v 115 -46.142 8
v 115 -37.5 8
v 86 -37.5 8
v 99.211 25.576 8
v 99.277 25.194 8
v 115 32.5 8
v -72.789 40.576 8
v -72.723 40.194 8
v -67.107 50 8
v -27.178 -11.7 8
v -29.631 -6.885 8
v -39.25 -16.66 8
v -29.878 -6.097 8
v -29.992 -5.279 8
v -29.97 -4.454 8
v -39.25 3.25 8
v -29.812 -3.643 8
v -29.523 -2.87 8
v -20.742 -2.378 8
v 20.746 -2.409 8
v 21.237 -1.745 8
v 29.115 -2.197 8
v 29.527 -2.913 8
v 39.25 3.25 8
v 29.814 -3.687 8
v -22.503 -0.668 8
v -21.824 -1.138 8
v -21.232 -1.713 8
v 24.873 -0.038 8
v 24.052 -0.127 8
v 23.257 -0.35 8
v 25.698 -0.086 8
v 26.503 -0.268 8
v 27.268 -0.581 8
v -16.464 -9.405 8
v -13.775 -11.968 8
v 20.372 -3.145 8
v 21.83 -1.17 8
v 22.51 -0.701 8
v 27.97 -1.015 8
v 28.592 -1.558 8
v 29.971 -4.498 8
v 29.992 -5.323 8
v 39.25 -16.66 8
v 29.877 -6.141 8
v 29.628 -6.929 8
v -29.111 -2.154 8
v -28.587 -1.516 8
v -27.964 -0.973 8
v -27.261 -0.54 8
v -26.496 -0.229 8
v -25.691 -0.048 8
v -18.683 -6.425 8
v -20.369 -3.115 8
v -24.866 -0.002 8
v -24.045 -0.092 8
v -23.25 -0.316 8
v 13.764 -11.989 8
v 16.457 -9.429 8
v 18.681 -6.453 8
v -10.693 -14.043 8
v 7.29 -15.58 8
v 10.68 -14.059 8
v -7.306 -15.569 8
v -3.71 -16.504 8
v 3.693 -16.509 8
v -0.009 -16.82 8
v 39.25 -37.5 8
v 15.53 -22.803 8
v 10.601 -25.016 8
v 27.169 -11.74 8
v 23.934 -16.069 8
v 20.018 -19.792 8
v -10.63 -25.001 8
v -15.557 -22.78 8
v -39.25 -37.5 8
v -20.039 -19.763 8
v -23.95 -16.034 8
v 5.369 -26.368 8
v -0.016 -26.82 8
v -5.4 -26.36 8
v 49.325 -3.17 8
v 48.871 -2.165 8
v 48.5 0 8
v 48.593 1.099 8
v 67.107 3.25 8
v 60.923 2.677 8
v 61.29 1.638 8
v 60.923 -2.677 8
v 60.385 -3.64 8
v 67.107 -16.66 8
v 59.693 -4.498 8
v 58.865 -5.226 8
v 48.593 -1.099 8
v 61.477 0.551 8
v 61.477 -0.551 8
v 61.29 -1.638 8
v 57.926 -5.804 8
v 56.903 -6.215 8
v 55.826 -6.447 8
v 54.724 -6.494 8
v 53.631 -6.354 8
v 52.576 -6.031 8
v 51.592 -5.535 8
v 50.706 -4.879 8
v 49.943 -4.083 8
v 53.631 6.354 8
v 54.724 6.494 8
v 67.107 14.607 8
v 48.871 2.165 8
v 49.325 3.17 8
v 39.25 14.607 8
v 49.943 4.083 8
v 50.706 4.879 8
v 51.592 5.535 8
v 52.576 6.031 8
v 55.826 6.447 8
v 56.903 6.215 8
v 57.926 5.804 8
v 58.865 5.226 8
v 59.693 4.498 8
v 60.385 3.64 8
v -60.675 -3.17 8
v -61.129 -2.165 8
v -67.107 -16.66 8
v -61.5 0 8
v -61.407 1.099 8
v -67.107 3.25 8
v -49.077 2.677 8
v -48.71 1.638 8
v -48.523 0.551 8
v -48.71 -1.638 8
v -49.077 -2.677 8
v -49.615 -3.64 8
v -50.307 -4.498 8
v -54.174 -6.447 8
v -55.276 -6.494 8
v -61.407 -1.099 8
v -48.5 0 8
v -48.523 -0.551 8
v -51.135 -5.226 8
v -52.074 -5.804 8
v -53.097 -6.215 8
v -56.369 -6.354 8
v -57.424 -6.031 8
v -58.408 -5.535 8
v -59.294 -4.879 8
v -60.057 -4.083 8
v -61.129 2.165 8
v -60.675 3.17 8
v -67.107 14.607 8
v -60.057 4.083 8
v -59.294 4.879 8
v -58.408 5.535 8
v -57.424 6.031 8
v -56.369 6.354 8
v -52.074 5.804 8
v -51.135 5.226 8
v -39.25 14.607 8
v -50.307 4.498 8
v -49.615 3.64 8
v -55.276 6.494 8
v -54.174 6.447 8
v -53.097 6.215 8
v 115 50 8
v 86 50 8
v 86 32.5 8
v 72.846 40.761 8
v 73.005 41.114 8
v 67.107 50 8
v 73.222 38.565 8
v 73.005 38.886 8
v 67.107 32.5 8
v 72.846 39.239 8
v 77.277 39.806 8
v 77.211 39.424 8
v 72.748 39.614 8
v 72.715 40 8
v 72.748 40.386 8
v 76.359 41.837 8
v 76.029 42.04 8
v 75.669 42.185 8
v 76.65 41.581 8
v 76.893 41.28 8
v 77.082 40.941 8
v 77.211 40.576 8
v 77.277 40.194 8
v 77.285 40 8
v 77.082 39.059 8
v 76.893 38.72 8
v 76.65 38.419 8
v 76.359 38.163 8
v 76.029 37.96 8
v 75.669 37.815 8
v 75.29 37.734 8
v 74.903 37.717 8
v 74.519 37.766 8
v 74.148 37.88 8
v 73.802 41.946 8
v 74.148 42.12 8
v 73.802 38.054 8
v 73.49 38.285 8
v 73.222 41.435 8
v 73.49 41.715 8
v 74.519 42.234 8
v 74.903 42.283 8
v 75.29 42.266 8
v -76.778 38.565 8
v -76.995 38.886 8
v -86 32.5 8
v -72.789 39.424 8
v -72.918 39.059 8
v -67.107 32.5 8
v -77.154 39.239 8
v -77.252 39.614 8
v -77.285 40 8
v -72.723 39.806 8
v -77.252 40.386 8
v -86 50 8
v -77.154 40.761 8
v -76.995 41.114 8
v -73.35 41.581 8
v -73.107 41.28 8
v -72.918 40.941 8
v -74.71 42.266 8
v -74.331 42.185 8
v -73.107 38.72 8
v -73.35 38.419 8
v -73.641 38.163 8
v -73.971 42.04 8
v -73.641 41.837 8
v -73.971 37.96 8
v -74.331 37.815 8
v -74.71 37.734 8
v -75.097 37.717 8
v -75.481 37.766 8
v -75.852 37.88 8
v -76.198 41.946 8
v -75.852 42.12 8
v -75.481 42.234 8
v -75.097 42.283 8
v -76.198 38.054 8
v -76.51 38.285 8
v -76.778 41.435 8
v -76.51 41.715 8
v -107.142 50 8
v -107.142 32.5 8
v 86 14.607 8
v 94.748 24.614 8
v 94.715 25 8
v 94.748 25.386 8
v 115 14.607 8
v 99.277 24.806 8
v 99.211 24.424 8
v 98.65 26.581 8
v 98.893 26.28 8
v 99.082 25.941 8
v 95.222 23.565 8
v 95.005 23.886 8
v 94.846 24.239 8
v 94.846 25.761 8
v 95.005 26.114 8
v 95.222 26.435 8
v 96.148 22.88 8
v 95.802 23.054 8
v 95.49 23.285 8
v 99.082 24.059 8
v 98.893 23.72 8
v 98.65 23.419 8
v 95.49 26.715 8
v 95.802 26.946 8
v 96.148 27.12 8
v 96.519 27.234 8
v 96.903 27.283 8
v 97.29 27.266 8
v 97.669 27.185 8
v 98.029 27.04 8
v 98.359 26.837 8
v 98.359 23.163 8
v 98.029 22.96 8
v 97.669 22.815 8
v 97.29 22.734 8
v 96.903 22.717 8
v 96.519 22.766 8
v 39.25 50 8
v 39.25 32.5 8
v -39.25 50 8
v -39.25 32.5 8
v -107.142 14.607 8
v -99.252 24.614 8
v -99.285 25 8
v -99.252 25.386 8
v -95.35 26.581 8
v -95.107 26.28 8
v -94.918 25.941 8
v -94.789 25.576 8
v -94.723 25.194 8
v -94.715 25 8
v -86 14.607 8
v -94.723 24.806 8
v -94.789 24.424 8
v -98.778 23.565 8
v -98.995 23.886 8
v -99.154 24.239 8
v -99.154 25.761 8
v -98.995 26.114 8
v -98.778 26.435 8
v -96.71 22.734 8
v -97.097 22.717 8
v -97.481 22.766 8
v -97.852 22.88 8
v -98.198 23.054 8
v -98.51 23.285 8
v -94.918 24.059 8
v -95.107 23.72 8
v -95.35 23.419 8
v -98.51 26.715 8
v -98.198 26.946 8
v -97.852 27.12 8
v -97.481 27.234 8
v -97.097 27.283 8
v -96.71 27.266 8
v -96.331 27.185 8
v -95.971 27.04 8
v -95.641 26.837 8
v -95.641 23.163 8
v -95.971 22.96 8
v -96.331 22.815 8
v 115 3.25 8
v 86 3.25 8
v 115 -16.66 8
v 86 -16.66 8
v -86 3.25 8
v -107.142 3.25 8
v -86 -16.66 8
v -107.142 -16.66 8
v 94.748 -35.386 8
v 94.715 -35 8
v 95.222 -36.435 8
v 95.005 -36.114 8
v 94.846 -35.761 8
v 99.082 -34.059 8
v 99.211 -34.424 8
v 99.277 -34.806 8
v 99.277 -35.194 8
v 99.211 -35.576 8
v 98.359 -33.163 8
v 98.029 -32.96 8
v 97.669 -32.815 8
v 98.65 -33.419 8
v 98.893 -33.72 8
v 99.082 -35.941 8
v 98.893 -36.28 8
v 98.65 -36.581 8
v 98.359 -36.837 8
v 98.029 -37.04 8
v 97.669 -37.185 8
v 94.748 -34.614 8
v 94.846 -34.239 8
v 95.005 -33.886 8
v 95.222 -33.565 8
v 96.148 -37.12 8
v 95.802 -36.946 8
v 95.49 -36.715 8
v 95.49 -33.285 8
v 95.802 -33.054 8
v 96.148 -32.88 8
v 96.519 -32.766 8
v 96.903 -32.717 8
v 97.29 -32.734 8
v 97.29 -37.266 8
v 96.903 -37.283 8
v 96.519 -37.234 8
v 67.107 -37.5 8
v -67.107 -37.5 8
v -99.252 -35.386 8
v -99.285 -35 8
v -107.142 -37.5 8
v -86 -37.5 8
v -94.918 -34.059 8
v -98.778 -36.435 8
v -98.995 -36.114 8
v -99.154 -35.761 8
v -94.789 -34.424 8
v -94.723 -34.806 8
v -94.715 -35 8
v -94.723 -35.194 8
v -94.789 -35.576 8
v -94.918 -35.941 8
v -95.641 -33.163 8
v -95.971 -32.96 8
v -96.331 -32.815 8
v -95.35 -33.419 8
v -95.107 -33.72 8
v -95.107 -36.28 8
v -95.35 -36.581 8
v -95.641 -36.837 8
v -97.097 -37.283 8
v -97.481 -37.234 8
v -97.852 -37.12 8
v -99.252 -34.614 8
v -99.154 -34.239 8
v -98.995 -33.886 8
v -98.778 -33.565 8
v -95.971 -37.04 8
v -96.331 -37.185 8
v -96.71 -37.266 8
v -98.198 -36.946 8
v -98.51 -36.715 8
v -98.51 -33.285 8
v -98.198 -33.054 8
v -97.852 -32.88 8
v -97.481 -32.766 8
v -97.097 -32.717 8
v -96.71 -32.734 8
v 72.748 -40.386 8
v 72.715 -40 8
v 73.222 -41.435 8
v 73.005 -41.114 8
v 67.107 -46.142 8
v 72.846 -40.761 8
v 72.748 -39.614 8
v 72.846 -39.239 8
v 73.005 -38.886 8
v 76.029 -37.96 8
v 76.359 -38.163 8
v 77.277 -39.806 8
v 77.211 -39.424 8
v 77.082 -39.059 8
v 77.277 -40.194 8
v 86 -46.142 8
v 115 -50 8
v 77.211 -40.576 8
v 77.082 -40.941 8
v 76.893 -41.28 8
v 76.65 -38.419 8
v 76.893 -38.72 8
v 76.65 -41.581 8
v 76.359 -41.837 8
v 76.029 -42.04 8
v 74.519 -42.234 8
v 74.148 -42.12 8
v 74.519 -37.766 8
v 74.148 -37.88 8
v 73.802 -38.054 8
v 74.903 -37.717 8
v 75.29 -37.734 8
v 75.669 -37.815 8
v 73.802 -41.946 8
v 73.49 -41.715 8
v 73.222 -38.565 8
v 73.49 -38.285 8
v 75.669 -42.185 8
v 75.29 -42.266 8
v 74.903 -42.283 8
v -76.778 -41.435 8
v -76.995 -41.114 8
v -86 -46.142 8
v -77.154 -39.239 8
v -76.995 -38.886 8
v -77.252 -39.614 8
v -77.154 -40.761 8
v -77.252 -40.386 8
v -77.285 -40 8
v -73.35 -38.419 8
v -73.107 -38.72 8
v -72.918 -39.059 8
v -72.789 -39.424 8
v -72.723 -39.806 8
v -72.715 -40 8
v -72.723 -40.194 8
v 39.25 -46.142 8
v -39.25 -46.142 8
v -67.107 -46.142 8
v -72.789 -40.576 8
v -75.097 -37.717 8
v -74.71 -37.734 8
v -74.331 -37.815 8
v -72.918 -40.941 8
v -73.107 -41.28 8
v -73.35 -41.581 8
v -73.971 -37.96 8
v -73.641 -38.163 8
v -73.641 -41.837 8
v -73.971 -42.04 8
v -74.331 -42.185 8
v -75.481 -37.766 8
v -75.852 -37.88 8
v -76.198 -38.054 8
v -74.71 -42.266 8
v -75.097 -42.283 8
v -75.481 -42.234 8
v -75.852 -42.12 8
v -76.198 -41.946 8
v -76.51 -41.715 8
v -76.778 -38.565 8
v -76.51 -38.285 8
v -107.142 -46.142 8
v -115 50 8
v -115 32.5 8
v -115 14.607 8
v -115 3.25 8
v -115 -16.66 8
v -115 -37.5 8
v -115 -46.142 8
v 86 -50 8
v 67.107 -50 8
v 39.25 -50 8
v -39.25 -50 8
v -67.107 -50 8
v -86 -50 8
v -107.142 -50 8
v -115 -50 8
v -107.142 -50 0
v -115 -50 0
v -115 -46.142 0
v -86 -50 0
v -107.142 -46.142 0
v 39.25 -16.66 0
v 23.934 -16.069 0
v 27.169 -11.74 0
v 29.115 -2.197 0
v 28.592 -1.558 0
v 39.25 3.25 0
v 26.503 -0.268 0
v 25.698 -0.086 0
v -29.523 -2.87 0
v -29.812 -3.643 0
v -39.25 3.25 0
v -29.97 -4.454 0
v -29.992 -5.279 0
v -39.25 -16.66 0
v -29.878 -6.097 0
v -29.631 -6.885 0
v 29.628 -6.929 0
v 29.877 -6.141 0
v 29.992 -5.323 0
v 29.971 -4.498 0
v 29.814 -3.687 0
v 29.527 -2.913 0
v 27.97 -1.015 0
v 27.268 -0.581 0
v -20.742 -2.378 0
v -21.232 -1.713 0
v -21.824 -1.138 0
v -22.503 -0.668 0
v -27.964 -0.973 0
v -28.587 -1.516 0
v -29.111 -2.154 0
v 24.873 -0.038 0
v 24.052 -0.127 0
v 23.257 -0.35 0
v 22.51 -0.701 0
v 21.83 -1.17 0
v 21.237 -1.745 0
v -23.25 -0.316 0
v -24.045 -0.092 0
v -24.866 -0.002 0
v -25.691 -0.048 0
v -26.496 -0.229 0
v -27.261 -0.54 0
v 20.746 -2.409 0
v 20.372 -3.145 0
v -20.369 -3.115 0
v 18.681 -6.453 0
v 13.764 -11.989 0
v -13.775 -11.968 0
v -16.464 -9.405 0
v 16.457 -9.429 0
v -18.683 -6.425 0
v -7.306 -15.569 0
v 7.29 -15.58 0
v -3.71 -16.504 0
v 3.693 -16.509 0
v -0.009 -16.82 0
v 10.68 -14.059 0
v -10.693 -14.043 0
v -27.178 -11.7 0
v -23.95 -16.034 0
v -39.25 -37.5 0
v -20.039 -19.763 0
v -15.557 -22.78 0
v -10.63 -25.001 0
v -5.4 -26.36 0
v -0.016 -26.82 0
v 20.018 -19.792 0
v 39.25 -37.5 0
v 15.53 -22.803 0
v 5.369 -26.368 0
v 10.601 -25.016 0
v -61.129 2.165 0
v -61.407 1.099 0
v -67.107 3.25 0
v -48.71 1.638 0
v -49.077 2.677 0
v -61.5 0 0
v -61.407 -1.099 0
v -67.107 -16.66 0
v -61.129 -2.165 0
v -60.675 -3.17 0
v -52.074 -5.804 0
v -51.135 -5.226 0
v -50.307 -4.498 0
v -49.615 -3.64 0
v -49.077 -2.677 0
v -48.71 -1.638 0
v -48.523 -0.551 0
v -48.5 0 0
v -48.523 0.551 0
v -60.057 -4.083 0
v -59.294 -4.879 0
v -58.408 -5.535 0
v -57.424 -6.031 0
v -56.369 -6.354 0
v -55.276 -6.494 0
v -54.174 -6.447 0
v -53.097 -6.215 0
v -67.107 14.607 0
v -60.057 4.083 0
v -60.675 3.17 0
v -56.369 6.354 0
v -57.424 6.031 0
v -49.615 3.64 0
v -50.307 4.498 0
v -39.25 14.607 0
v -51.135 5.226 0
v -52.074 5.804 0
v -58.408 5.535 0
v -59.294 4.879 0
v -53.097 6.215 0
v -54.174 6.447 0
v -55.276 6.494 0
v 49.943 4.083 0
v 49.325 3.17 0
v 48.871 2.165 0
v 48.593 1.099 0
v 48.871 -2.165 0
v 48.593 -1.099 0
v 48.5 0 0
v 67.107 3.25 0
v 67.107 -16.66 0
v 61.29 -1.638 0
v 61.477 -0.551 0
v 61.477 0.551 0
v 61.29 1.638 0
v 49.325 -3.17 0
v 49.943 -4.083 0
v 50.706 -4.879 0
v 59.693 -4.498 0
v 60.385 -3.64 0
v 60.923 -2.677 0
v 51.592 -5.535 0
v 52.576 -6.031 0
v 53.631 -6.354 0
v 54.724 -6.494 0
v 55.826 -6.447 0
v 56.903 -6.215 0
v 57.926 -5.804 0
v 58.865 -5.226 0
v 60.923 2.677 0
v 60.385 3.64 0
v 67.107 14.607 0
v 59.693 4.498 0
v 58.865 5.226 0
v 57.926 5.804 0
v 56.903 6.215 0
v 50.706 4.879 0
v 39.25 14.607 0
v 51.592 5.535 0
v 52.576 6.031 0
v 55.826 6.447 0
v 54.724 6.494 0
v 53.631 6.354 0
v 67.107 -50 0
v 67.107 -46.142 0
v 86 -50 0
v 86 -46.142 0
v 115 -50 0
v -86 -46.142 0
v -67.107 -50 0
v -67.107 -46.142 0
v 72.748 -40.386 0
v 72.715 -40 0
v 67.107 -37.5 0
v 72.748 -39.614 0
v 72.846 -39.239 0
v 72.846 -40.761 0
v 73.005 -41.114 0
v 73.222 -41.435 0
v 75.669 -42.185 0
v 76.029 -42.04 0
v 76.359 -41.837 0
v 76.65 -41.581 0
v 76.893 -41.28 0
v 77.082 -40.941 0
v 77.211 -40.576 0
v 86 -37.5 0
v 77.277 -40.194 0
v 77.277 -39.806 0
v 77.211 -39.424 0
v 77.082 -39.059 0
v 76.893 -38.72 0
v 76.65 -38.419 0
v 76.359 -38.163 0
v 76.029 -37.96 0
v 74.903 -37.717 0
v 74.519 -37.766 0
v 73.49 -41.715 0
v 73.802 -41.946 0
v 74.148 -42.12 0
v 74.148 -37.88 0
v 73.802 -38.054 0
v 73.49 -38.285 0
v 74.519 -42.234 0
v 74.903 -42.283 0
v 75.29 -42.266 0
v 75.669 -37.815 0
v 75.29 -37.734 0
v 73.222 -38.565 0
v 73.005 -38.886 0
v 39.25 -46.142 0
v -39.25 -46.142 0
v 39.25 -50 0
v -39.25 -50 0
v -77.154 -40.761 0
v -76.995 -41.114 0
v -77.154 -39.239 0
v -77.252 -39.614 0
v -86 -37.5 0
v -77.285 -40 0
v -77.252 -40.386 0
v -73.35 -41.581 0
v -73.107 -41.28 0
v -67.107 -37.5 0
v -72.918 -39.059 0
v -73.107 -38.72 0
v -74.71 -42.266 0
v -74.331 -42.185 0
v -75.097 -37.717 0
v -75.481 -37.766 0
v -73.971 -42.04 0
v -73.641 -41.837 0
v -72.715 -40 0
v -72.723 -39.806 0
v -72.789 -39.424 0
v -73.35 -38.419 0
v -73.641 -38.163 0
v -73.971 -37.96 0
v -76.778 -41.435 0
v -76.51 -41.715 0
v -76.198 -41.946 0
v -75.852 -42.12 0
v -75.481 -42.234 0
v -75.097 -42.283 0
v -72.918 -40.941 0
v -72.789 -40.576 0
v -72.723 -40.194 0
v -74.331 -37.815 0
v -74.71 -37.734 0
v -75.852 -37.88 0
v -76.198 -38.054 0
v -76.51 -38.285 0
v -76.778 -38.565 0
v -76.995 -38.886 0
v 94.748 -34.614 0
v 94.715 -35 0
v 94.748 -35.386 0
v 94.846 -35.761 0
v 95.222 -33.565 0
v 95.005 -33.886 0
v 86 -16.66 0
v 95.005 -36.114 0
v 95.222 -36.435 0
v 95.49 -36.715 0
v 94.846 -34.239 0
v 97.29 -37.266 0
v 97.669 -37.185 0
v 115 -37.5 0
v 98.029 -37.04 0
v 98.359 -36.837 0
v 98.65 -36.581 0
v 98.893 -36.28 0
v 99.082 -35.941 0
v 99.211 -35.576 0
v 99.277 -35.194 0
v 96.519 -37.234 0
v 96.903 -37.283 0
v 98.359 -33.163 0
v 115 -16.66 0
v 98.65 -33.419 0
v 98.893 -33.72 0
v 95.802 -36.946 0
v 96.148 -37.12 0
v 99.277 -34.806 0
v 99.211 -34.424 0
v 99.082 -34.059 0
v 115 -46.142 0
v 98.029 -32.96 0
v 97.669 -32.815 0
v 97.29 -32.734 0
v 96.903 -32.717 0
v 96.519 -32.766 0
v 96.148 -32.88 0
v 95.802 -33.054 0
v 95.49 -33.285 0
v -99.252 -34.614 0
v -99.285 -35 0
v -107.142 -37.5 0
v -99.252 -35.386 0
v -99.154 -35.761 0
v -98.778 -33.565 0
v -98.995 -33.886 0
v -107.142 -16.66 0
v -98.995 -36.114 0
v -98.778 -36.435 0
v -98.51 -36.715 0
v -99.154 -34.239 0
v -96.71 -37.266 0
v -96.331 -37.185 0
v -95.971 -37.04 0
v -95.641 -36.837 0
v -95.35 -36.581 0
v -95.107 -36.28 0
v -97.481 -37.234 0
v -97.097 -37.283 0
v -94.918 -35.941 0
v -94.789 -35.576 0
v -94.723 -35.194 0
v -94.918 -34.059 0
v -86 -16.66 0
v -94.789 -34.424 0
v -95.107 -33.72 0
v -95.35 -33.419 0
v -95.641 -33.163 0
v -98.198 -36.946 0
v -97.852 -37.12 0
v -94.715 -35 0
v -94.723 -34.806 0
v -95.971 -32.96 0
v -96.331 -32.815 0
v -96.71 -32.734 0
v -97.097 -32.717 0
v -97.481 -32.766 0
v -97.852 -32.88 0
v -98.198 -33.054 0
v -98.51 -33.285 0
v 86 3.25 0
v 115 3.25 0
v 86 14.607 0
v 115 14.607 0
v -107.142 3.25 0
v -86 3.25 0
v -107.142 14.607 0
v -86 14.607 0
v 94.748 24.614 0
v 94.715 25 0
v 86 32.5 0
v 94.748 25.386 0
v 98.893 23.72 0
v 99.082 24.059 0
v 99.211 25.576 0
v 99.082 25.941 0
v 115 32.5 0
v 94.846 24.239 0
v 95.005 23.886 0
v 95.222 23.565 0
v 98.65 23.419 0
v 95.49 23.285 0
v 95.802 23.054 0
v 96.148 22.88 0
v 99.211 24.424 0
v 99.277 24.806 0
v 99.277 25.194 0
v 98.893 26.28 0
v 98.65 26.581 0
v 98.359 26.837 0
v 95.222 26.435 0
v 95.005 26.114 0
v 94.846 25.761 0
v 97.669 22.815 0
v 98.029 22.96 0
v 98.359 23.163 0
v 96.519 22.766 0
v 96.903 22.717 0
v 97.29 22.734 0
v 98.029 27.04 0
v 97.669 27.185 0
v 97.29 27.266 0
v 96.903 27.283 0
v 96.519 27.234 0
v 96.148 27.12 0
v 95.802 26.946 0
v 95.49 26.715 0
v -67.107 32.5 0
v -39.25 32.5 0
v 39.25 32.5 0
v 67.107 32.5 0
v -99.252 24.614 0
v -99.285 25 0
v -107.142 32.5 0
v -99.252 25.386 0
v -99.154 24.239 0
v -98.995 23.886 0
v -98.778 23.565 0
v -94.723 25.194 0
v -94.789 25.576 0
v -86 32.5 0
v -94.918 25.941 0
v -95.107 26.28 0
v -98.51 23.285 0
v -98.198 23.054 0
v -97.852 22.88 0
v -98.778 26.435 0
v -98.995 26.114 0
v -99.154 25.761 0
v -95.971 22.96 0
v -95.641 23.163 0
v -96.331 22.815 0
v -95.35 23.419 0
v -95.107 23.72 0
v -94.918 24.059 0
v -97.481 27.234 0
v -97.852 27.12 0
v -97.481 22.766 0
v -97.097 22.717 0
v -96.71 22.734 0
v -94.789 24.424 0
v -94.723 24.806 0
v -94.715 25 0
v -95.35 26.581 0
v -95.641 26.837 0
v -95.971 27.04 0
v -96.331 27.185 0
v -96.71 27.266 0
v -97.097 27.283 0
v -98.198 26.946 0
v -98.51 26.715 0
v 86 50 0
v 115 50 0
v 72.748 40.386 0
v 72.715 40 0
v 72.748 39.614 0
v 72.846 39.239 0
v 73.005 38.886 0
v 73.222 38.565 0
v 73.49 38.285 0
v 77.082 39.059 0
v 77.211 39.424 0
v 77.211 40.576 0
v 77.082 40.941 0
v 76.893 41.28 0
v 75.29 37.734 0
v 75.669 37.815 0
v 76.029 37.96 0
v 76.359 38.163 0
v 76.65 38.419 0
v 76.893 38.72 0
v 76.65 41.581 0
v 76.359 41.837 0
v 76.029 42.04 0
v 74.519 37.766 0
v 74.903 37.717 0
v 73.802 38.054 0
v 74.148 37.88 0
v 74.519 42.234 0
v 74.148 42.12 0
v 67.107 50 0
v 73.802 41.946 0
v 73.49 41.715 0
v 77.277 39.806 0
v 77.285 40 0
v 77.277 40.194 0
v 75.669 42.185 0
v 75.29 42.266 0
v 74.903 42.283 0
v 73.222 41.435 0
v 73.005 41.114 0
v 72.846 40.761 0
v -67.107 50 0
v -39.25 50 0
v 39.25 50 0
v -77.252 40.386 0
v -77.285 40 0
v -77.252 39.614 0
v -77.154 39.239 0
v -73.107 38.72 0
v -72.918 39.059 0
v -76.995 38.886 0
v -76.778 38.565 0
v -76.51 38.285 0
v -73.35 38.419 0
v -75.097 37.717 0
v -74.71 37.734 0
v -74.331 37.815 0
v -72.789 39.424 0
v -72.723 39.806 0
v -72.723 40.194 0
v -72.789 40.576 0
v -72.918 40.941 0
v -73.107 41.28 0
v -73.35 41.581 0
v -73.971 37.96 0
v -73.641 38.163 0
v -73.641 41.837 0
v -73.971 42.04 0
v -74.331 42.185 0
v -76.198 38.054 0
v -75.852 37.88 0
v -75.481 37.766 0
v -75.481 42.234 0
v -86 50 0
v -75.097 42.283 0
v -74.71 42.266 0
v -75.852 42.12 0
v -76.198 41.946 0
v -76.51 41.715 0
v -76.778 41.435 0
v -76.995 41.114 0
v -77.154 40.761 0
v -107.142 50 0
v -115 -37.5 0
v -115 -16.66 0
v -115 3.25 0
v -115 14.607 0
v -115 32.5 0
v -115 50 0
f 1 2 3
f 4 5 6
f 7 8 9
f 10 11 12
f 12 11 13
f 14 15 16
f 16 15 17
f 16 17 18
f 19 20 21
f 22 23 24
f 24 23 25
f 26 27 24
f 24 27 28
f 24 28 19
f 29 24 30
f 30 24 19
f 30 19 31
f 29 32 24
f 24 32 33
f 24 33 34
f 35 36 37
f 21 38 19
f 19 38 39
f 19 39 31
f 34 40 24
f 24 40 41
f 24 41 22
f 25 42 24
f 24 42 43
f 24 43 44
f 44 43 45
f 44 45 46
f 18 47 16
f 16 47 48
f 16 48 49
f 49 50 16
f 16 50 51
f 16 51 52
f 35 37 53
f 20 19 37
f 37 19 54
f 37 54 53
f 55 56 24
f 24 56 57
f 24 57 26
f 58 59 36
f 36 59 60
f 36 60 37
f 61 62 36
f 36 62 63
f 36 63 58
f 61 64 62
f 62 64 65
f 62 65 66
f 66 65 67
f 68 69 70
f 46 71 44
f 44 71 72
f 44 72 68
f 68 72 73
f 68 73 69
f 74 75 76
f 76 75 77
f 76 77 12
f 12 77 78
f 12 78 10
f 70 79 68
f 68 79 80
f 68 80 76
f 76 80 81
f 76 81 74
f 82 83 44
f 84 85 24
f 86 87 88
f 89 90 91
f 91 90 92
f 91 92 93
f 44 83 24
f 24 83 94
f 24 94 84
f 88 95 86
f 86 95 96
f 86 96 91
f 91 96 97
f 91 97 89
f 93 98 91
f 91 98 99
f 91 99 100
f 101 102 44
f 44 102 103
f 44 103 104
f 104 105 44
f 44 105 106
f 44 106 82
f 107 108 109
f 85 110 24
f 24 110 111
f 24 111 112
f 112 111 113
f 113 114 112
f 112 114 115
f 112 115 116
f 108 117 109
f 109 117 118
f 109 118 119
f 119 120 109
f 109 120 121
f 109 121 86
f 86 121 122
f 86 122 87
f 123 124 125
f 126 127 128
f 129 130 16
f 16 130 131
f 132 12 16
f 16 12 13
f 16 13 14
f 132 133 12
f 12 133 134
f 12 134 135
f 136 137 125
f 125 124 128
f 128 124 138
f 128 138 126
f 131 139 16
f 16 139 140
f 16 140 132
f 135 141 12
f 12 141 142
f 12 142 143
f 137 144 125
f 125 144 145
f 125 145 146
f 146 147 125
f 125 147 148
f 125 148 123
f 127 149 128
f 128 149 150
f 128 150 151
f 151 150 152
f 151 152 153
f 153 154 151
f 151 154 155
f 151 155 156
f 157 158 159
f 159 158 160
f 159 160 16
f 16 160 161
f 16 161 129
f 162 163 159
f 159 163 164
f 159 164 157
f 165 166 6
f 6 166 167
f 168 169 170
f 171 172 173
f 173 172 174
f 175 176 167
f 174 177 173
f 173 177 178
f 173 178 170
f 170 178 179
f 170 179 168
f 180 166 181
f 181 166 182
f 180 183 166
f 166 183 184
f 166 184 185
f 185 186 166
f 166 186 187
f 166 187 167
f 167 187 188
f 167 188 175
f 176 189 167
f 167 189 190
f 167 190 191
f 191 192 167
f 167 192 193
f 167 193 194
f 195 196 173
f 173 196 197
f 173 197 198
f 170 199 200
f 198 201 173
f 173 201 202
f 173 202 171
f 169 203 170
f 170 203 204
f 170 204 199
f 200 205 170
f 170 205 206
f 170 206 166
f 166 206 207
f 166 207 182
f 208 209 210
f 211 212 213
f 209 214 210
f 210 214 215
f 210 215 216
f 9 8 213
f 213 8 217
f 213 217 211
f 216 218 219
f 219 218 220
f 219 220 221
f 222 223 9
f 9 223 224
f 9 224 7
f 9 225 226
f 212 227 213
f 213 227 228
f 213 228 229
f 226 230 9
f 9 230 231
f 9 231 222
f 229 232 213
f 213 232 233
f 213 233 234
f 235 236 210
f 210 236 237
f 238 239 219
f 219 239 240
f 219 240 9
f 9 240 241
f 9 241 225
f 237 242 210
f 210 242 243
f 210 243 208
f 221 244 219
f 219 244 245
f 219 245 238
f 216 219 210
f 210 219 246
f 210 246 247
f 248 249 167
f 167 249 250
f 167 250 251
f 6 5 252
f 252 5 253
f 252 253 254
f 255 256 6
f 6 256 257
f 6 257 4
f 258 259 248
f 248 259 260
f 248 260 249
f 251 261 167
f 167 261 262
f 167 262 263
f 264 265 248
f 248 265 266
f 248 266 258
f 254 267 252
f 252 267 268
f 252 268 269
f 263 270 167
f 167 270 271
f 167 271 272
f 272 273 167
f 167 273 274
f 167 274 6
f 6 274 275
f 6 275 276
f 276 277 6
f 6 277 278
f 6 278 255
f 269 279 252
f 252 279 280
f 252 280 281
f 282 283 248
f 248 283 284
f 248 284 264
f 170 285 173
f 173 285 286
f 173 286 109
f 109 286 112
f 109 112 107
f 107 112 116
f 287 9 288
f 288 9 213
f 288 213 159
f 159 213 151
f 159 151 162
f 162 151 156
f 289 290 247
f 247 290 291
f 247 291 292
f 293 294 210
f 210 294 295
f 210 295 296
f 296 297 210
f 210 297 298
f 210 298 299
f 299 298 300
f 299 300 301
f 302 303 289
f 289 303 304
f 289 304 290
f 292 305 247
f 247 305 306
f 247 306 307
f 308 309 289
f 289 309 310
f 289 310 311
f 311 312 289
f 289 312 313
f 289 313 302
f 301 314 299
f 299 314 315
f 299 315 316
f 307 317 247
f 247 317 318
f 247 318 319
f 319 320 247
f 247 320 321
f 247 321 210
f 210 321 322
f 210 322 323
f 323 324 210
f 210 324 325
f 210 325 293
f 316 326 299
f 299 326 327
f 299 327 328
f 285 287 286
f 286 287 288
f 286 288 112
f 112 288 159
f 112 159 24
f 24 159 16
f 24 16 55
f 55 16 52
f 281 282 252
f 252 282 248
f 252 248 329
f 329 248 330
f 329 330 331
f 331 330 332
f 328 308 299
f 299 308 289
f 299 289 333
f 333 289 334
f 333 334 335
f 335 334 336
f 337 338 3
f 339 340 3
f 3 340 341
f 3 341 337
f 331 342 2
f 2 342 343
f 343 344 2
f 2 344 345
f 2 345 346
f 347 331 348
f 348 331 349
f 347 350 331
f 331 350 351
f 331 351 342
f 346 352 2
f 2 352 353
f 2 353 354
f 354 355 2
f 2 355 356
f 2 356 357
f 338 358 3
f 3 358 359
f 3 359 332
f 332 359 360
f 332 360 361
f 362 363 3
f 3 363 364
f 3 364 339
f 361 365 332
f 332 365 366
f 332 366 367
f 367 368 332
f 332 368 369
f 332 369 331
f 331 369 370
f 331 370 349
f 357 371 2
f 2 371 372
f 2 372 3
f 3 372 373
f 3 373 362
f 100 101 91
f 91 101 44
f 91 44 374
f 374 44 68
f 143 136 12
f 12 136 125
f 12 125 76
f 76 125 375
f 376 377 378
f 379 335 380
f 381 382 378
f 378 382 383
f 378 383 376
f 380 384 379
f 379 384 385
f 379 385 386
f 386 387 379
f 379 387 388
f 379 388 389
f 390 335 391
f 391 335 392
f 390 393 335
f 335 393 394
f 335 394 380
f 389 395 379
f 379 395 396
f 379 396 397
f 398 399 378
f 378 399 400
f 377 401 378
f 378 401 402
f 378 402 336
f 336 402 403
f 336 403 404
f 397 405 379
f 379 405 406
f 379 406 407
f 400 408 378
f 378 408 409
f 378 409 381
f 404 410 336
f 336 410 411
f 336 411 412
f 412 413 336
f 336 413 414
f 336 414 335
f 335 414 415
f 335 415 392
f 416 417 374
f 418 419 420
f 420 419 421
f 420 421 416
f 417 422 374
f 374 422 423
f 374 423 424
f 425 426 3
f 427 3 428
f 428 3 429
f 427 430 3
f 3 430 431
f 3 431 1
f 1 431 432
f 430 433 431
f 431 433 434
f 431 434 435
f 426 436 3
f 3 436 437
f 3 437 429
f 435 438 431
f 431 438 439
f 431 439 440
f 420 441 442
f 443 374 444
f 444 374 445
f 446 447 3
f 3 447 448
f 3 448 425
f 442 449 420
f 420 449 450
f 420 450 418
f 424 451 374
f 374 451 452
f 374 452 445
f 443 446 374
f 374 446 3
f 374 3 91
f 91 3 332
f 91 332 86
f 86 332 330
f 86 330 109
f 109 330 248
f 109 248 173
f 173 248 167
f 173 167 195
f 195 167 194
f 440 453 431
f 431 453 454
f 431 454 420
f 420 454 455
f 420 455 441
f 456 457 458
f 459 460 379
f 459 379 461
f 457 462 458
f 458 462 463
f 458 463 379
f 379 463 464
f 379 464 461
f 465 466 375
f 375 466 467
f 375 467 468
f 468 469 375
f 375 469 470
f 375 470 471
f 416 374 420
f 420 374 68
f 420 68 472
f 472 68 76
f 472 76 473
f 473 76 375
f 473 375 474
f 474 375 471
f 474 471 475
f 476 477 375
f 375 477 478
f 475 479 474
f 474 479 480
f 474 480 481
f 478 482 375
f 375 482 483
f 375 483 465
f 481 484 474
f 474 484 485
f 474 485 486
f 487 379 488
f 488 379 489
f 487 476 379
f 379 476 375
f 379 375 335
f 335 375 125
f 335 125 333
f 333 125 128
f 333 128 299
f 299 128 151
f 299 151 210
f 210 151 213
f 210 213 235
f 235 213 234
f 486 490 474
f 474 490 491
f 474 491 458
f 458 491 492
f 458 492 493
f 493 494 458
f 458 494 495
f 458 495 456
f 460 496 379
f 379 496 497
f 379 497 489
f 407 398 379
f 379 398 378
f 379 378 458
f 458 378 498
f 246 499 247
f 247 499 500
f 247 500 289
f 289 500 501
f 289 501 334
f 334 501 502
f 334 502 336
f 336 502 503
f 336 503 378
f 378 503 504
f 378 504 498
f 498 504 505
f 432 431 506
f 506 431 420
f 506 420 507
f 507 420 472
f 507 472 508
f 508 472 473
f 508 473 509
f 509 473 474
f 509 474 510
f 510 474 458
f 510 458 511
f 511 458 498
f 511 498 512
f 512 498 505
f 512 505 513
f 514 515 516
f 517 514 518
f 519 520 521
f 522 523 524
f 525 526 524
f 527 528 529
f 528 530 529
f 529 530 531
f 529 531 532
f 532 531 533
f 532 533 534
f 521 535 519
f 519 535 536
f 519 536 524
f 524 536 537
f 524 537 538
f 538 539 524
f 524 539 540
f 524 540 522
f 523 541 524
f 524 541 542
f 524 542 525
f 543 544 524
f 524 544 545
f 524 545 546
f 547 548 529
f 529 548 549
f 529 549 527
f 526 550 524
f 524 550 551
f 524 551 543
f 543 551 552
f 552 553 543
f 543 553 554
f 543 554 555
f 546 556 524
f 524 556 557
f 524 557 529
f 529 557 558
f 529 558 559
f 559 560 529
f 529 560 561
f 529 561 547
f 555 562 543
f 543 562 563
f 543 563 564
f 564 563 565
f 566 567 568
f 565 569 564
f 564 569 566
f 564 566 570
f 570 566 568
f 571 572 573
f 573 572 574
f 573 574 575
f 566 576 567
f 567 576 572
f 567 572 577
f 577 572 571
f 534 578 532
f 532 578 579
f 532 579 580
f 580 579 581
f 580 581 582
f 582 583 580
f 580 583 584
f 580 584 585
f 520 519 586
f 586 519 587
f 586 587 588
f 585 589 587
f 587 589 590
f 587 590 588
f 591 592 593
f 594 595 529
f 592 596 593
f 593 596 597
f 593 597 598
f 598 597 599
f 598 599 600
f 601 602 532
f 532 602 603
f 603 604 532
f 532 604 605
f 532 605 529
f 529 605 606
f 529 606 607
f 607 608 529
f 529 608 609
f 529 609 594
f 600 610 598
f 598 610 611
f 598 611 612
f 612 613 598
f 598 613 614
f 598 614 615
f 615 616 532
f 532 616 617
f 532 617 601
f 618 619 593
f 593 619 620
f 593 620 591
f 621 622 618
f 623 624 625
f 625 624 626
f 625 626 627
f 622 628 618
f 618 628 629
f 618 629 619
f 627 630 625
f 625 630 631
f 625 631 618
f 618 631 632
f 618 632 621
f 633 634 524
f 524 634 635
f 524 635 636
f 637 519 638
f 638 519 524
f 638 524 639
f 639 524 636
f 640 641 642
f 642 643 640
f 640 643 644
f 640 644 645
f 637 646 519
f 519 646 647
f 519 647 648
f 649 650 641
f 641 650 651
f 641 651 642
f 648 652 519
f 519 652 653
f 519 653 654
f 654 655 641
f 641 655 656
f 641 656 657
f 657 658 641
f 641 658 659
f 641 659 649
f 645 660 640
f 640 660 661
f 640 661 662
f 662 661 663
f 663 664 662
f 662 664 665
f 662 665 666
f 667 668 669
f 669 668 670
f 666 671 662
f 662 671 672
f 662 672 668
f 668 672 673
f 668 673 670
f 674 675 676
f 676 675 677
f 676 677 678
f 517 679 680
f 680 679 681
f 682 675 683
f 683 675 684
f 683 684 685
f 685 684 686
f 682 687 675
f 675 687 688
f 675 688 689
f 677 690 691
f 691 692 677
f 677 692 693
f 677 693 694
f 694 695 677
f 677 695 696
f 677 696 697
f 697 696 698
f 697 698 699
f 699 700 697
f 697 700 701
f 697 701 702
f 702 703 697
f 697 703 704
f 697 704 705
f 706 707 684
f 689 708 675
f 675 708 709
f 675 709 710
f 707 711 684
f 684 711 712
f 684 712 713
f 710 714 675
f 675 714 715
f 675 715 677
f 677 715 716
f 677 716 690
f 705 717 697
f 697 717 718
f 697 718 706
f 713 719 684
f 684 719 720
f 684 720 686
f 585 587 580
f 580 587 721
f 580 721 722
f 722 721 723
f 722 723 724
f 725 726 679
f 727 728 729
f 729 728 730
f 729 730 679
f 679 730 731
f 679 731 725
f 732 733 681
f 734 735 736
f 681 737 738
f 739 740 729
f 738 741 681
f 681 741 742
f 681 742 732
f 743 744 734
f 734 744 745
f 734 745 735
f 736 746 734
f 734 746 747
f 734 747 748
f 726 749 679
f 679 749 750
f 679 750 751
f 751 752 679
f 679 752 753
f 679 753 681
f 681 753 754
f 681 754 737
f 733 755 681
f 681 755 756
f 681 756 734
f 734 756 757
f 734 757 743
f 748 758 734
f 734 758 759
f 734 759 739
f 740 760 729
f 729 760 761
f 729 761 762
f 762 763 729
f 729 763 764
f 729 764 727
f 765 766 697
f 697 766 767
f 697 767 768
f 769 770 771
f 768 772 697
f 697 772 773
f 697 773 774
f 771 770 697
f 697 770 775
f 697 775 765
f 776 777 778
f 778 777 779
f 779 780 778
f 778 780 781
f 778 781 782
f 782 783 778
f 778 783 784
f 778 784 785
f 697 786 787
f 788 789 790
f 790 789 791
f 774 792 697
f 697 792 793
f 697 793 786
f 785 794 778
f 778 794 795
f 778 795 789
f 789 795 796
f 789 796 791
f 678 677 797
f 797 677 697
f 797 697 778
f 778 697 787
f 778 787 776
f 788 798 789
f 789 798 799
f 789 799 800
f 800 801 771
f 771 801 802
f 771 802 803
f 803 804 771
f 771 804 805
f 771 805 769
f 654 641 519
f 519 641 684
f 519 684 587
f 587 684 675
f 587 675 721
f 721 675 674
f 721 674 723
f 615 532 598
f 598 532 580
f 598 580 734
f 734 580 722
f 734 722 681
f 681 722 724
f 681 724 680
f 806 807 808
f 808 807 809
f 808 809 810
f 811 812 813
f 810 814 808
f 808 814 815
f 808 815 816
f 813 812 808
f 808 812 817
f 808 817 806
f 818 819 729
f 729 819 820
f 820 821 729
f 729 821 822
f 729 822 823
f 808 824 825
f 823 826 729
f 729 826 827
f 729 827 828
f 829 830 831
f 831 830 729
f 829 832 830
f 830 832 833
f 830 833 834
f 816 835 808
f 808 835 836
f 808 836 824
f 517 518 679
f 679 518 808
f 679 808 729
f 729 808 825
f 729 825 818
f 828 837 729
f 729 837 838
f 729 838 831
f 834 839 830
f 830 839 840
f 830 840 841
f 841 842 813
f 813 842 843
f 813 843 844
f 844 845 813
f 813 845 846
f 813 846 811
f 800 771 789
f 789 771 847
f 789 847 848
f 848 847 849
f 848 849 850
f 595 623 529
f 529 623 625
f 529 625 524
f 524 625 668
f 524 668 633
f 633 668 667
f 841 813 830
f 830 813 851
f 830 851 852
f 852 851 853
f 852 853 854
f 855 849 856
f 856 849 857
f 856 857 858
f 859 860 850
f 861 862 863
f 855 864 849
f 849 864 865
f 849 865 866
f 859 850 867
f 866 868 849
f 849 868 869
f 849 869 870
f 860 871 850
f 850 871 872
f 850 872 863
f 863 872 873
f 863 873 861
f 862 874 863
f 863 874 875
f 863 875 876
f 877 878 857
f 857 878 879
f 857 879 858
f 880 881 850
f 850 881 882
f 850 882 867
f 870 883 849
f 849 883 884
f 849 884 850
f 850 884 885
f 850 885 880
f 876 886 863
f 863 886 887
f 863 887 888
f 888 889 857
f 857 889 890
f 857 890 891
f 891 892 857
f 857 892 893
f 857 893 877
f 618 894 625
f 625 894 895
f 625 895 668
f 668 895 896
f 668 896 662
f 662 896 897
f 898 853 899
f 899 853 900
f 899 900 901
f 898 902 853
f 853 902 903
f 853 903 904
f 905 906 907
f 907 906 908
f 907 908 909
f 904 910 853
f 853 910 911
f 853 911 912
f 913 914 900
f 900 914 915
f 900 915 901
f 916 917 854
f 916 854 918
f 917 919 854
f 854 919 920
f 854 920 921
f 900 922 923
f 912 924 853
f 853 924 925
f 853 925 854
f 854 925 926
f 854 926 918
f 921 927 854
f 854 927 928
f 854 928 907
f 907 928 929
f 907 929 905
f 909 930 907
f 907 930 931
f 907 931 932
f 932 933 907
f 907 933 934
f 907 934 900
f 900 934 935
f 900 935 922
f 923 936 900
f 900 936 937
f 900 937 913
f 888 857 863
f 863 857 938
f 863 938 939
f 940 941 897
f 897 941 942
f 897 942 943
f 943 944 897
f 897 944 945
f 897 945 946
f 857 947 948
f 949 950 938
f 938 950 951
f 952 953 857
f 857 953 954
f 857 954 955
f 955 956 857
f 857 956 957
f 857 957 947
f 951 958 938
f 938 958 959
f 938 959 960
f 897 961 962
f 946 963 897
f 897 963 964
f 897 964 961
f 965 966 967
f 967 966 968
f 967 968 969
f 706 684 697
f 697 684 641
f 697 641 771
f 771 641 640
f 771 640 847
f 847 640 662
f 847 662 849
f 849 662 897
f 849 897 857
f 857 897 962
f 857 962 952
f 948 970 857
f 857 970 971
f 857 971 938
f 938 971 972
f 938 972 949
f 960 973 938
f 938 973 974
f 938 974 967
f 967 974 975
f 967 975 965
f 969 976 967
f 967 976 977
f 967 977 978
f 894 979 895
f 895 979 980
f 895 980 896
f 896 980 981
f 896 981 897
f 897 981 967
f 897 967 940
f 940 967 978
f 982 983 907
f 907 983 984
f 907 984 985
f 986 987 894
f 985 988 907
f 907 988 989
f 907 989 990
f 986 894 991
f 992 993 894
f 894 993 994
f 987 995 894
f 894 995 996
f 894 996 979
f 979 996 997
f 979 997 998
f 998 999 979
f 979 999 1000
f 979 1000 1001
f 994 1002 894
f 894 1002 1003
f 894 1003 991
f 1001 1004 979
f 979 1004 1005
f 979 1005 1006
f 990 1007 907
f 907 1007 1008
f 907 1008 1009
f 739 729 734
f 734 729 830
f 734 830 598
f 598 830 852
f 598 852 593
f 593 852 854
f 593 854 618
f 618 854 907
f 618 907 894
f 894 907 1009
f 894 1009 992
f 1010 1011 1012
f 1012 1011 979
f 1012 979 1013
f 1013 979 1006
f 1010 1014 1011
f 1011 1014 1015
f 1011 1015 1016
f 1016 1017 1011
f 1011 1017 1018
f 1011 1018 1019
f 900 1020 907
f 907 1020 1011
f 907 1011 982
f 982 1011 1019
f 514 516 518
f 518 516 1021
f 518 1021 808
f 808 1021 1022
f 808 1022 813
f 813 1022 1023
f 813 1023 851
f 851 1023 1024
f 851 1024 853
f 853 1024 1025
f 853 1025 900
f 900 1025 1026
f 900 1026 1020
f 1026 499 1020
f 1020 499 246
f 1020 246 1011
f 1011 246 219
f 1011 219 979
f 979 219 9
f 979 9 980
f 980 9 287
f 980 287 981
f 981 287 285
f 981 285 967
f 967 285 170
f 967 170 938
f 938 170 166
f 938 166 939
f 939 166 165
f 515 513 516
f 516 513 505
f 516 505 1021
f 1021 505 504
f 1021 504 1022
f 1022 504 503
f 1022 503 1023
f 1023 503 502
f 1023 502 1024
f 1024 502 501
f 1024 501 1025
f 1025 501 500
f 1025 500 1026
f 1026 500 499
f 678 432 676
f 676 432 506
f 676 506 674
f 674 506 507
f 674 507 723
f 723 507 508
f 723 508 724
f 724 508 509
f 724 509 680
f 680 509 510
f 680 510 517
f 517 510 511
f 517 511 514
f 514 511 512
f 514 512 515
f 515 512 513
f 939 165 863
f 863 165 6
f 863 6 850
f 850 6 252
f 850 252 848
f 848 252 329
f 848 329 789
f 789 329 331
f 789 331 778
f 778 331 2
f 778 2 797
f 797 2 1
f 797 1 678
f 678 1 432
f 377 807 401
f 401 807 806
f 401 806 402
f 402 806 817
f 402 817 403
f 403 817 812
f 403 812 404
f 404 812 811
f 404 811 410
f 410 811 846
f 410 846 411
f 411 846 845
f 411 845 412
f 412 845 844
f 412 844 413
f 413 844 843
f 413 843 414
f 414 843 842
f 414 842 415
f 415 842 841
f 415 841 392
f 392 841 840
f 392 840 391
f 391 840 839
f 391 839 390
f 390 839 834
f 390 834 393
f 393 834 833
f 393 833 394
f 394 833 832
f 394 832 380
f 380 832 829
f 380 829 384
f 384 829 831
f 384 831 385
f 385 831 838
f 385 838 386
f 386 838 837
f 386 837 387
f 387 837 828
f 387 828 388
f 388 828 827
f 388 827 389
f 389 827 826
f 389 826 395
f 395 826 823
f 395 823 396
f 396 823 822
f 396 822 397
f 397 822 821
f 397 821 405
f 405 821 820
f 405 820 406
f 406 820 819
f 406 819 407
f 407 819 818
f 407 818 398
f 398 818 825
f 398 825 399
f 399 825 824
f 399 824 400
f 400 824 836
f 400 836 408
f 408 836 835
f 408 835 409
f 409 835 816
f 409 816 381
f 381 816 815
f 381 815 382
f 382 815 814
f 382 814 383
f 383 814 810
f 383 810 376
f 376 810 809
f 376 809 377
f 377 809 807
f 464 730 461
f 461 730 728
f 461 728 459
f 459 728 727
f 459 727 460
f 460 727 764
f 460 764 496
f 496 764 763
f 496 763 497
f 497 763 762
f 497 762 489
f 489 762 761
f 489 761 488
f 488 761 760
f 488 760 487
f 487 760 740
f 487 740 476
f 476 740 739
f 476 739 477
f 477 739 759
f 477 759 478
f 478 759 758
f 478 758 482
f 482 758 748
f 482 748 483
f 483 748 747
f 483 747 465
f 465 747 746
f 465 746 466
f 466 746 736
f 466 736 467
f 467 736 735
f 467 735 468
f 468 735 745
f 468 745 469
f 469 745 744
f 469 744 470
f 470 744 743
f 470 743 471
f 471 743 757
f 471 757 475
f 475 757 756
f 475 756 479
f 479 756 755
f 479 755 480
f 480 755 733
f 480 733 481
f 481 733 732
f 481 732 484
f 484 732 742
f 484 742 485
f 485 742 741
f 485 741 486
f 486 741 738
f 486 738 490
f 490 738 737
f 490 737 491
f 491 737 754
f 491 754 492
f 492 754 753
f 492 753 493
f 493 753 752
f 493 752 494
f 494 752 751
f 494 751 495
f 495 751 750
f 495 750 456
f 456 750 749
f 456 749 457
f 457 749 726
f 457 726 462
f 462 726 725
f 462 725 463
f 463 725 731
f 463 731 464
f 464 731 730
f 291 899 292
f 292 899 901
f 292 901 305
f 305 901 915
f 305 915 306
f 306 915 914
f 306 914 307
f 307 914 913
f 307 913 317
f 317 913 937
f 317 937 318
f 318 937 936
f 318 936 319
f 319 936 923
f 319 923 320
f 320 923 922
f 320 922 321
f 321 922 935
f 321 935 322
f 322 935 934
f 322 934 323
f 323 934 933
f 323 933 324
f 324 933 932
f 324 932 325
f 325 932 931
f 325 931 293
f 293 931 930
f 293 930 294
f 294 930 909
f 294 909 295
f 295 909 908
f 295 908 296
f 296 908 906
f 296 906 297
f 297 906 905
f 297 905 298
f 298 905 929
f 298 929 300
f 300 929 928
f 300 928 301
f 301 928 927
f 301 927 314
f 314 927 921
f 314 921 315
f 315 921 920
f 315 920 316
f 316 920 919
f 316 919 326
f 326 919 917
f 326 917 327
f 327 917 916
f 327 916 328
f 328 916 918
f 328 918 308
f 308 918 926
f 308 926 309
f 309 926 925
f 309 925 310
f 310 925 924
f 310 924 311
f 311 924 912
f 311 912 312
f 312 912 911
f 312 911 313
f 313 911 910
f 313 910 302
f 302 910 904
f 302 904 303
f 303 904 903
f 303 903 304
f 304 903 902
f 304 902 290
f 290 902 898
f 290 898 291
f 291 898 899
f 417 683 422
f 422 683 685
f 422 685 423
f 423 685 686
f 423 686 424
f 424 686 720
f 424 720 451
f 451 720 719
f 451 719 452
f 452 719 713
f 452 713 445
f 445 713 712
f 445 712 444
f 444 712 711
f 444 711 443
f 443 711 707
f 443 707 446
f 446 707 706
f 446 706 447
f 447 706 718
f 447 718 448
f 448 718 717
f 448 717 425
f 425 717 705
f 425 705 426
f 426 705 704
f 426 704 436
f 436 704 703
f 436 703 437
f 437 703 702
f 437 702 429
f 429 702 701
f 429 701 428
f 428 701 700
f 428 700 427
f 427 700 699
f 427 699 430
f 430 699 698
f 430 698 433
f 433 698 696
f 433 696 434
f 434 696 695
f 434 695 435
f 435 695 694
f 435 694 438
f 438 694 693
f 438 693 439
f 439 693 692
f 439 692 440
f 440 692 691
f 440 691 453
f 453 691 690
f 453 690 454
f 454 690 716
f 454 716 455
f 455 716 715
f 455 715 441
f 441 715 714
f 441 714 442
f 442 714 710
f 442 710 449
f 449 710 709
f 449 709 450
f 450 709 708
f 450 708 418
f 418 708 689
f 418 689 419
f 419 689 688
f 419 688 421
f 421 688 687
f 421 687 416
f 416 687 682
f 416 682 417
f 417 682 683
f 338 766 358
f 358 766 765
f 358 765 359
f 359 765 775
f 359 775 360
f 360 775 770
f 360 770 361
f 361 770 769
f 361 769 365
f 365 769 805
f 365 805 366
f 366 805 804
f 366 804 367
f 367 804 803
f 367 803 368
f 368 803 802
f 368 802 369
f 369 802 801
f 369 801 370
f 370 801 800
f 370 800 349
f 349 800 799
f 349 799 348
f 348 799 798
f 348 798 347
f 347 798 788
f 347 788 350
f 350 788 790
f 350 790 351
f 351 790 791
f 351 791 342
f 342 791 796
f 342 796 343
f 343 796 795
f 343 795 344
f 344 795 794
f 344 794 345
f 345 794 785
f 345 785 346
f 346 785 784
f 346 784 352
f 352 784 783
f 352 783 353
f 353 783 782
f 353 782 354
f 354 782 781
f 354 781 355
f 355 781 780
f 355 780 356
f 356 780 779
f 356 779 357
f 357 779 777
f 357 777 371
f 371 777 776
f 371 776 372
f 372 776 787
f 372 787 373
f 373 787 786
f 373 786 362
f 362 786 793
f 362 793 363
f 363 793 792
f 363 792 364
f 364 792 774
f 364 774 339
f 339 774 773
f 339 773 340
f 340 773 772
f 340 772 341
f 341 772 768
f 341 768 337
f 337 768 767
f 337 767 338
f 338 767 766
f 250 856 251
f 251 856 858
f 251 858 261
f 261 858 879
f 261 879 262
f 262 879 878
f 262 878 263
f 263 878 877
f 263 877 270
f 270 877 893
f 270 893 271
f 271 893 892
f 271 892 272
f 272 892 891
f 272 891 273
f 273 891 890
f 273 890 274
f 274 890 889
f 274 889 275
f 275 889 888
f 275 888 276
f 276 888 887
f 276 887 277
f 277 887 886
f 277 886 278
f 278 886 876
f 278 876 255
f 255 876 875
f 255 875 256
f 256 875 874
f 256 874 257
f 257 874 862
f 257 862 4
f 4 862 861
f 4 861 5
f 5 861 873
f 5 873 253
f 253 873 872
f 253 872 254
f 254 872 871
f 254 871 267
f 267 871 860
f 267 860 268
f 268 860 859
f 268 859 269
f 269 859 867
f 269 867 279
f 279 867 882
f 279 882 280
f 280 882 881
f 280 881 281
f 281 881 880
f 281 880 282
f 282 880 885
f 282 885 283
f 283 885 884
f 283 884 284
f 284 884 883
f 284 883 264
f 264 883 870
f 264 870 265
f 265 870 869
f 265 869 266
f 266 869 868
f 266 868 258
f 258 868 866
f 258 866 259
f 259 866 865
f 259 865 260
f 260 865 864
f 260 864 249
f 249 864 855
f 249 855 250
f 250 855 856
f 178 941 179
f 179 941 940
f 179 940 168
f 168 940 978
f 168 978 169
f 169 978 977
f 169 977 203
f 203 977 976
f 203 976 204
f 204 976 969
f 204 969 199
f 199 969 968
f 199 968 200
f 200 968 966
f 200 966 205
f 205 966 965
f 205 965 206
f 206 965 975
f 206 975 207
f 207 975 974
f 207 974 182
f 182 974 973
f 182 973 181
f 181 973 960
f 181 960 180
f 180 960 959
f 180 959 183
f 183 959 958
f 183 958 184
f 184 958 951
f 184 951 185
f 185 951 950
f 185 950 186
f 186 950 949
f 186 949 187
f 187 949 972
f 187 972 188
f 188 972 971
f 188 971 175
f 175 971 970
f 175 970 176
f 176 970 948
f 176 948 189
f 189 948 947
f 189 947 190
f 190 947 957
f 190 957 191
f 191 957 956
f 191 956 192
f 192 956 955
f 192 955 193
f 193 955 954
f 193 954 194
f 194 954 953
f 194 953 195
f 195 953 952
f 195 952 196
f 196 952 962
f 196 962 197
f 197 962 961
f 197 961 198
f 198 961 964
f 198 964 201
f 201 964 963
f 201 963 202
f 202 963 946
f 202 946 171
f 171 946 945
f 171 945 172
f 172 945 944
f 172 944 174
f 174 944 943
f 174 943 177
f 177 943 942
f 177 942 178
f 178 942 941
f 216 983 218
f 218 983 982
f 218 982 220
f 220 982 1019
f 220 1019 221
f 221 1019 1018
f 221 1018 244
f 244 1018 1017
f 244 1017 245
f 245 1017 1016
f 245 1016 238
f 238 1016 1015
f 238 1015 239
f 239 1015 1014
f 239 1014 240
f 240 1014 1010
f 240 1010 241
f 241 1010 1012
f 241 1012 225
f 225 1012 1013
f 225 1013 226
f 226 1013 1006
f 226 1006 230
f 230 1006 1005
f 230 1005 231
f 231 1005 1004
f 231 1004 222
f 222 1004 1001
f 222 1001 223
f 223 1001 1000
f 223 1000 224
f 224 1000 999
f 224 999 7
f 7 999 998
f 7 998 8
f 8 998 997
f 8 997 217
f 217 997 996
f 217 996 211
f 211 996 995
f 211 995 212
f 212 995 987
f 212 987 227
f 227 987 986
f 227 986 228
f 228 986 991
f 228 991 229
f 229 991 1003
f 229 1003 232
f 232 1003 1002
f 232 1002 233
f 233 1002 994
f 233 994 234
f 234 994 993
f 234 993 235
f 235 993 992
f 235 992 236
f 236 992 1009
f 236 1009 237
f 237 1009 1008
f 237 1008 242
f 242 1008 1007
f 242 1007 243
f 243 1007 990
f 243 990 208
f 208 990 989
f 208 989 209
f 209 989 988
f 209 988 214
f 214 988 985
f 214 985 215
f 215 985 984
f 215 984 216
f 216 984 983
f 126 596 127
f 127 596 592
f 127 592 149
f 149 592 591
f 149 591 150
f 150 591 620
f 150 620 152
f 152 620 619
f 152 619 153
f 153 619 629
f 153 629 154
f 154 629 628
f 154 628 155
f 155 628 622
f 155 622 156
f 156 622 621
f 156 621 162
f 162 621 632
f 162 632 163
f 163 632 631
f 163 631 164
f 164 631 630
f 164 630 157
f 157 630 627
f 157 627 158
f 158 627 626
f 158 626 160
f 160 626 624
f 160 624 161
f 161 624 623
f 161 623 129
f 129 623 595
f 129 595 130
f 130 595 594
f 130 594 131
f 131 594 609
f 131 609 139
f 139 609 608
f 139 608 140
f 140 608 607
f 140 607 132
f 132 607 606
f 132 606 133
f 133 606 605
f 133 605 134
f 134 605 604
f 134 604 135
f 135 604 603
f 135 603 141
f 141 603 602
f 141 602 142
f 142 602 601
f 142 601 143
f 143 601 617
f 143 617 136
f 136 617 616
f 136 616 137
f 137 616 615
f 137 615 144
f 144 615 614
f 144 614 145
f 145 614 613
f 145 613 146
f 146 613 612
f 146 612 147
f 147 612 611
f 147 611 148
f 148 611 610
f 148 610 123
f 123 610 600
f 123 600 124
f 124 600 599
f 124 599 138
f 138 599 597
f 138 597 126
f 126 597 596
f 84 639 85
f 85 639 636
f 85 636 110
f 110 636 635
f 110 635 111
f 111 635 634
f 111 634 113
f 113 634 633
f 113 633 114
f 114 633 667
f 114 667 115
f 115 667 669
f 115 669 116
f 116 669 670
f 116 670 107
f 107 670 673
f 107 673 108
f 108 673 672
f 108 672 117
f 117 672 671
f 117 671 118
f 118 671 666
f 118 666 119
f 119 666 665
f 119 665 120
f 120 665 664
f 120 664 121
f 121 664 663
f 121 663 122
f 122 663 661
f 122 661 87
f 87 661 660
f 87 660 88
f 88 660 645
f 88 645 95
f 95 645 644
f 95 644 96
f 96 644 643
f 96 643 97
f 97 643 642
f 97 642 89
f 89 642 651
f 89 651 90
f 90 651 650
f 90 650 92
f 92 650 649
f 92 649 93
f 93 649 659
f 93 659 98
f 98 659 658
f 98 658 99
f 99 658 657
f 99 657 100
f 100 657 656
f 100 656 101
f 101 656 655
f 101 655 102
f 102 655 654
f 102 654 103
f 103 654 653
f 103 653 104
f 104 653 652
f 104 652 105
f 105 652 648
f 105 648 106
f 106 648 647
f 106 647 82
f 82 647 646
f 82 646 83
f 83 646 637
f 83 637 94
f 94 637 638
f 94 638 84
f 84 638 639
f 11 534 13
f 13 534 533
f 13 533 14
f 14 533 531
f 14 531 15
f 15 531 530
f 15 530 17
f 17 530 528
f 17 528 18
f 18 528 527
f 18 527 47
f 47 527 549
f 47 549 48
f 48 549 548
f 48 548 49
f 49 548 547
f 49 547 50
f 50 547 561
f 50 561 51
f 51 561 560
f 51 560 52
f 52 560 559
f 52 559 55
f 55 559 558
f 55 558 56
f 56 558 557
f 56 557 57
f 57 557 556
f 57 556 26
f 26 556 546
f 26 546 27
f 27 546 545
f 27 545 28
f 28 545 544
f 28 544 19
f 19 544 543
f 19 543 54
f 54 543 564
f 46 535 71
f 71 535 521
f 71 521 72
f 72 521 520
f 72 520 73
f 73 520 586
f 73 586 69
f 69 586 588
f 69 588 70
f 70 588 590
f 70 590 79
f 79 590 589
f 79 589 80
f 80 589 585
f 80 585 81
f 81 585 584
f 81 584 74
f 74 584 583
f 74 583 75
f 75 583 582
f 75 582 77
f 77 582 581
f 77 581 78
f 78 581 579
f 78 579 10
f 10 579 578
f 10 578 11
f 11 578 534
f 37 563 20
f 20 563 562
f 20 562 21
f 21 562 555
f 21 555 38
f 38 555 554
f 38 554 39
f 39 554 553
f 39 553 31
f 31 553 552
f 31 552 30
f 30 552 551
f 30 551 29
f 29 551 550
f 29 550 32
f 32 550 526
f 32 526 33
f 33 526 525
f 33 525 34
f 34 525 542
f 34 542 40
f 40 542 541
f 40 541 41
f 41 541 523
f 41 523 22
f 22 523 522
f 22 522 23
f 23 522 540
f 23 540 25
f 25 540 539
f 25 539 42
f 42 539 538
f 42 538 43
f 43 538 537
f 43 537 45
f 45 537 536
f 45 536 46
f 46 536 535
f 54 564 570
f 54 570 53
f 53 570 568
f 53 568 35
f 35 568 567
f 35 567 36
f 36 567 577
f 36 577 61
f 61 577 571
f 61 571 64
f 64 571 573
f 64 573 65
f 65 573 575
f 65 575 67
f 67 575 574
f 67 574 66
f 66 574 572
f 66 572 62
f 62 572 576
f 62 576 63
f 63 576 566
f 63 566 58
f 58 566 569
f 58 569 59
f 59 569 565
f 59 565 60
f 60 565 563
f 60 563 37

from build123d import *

# Parameters (mm, degrees)
SKETCH1_W           = 230
SKETCH1_H           = 100
SKETCH1_R           = 2.285
SKETCH1_R_2         = 6.5
BOSS_EXTRUDE1_DEPTH = 8


with BuildPart() as part:
    # Sketch1 → Boss-Extrude1 (new body)
    with BuildSketch(Plane.XY):
        Rectangle(SKETCH1_W, SKETCH1_H)
        with Locations((-97, 25)):
            Circle(SKETCH1_R, mode=Mode.SUBTRACT)
        with Locations((-97, -35)):
            Circle(SKETCH1_R, mode=Mode.SUBTRACT)
        with Locations((-75, -40)):
            Circle(SKETCH1_R, mode=Mode.SUBTRACT)
        with Locations(Location((75, -40, 0), (0, 0, 180))):
            Circle(SKETCH1_R, mode=Mode.SUBTRACT)
        with Locations(Location((97, -35, 0), (0, 0, 180))):
            Circle(SKETCH1_R, mode=Mode.SUBTRACT)
        with Locations(Location((97, 25, 0), (0, 0, 180))):
            Circle(SKETCH1_R, mode=Mode.SUBTRACT)
        with Locations((75, 40)):
            Circle(SKETCH1_R, mode=Mode.SUBTRACT)
        with Locations(Location((-75, 40, 0), (0, 0, 180))):
            Circle(SKETCH1_R, mode=Mode.SUBTRACT)
        with Locations((-55, 0)):
            Circle(SKETCH1_R_2, mode=Mode.SUBTRACT)
        with Locations(Location((55, 0, 0), (0, 0, 180))):
            Circle(SKETCH1_R_2, mode=Mode.SUBTRACT)
        with BuildLine():
            ThreePointArc((-29.631019604, -6.885114698), (-0.016046511, -26.820371965), (29.628239655, -6.928730219))
            ThreePointArc((29.628239655, -6.928730219), (26.891929623, -0.408560941), (20.371760345, -3.144870973))
            ThreePointArc((20.371760345, -3.144870973), (-0.008686394, -16.820374674), (-20.368980396, -3.114885302))
            ThreePointArc((-20.368980396, -3.114885302), (-26.885114698, -0.368980396), (-29.631019604, -6.885114698))
        make_face(mode=Mode.SUBTRACT)
    extrude(amount=BOSS_EXTRUDE1_DEPTH)


solid = part.part
